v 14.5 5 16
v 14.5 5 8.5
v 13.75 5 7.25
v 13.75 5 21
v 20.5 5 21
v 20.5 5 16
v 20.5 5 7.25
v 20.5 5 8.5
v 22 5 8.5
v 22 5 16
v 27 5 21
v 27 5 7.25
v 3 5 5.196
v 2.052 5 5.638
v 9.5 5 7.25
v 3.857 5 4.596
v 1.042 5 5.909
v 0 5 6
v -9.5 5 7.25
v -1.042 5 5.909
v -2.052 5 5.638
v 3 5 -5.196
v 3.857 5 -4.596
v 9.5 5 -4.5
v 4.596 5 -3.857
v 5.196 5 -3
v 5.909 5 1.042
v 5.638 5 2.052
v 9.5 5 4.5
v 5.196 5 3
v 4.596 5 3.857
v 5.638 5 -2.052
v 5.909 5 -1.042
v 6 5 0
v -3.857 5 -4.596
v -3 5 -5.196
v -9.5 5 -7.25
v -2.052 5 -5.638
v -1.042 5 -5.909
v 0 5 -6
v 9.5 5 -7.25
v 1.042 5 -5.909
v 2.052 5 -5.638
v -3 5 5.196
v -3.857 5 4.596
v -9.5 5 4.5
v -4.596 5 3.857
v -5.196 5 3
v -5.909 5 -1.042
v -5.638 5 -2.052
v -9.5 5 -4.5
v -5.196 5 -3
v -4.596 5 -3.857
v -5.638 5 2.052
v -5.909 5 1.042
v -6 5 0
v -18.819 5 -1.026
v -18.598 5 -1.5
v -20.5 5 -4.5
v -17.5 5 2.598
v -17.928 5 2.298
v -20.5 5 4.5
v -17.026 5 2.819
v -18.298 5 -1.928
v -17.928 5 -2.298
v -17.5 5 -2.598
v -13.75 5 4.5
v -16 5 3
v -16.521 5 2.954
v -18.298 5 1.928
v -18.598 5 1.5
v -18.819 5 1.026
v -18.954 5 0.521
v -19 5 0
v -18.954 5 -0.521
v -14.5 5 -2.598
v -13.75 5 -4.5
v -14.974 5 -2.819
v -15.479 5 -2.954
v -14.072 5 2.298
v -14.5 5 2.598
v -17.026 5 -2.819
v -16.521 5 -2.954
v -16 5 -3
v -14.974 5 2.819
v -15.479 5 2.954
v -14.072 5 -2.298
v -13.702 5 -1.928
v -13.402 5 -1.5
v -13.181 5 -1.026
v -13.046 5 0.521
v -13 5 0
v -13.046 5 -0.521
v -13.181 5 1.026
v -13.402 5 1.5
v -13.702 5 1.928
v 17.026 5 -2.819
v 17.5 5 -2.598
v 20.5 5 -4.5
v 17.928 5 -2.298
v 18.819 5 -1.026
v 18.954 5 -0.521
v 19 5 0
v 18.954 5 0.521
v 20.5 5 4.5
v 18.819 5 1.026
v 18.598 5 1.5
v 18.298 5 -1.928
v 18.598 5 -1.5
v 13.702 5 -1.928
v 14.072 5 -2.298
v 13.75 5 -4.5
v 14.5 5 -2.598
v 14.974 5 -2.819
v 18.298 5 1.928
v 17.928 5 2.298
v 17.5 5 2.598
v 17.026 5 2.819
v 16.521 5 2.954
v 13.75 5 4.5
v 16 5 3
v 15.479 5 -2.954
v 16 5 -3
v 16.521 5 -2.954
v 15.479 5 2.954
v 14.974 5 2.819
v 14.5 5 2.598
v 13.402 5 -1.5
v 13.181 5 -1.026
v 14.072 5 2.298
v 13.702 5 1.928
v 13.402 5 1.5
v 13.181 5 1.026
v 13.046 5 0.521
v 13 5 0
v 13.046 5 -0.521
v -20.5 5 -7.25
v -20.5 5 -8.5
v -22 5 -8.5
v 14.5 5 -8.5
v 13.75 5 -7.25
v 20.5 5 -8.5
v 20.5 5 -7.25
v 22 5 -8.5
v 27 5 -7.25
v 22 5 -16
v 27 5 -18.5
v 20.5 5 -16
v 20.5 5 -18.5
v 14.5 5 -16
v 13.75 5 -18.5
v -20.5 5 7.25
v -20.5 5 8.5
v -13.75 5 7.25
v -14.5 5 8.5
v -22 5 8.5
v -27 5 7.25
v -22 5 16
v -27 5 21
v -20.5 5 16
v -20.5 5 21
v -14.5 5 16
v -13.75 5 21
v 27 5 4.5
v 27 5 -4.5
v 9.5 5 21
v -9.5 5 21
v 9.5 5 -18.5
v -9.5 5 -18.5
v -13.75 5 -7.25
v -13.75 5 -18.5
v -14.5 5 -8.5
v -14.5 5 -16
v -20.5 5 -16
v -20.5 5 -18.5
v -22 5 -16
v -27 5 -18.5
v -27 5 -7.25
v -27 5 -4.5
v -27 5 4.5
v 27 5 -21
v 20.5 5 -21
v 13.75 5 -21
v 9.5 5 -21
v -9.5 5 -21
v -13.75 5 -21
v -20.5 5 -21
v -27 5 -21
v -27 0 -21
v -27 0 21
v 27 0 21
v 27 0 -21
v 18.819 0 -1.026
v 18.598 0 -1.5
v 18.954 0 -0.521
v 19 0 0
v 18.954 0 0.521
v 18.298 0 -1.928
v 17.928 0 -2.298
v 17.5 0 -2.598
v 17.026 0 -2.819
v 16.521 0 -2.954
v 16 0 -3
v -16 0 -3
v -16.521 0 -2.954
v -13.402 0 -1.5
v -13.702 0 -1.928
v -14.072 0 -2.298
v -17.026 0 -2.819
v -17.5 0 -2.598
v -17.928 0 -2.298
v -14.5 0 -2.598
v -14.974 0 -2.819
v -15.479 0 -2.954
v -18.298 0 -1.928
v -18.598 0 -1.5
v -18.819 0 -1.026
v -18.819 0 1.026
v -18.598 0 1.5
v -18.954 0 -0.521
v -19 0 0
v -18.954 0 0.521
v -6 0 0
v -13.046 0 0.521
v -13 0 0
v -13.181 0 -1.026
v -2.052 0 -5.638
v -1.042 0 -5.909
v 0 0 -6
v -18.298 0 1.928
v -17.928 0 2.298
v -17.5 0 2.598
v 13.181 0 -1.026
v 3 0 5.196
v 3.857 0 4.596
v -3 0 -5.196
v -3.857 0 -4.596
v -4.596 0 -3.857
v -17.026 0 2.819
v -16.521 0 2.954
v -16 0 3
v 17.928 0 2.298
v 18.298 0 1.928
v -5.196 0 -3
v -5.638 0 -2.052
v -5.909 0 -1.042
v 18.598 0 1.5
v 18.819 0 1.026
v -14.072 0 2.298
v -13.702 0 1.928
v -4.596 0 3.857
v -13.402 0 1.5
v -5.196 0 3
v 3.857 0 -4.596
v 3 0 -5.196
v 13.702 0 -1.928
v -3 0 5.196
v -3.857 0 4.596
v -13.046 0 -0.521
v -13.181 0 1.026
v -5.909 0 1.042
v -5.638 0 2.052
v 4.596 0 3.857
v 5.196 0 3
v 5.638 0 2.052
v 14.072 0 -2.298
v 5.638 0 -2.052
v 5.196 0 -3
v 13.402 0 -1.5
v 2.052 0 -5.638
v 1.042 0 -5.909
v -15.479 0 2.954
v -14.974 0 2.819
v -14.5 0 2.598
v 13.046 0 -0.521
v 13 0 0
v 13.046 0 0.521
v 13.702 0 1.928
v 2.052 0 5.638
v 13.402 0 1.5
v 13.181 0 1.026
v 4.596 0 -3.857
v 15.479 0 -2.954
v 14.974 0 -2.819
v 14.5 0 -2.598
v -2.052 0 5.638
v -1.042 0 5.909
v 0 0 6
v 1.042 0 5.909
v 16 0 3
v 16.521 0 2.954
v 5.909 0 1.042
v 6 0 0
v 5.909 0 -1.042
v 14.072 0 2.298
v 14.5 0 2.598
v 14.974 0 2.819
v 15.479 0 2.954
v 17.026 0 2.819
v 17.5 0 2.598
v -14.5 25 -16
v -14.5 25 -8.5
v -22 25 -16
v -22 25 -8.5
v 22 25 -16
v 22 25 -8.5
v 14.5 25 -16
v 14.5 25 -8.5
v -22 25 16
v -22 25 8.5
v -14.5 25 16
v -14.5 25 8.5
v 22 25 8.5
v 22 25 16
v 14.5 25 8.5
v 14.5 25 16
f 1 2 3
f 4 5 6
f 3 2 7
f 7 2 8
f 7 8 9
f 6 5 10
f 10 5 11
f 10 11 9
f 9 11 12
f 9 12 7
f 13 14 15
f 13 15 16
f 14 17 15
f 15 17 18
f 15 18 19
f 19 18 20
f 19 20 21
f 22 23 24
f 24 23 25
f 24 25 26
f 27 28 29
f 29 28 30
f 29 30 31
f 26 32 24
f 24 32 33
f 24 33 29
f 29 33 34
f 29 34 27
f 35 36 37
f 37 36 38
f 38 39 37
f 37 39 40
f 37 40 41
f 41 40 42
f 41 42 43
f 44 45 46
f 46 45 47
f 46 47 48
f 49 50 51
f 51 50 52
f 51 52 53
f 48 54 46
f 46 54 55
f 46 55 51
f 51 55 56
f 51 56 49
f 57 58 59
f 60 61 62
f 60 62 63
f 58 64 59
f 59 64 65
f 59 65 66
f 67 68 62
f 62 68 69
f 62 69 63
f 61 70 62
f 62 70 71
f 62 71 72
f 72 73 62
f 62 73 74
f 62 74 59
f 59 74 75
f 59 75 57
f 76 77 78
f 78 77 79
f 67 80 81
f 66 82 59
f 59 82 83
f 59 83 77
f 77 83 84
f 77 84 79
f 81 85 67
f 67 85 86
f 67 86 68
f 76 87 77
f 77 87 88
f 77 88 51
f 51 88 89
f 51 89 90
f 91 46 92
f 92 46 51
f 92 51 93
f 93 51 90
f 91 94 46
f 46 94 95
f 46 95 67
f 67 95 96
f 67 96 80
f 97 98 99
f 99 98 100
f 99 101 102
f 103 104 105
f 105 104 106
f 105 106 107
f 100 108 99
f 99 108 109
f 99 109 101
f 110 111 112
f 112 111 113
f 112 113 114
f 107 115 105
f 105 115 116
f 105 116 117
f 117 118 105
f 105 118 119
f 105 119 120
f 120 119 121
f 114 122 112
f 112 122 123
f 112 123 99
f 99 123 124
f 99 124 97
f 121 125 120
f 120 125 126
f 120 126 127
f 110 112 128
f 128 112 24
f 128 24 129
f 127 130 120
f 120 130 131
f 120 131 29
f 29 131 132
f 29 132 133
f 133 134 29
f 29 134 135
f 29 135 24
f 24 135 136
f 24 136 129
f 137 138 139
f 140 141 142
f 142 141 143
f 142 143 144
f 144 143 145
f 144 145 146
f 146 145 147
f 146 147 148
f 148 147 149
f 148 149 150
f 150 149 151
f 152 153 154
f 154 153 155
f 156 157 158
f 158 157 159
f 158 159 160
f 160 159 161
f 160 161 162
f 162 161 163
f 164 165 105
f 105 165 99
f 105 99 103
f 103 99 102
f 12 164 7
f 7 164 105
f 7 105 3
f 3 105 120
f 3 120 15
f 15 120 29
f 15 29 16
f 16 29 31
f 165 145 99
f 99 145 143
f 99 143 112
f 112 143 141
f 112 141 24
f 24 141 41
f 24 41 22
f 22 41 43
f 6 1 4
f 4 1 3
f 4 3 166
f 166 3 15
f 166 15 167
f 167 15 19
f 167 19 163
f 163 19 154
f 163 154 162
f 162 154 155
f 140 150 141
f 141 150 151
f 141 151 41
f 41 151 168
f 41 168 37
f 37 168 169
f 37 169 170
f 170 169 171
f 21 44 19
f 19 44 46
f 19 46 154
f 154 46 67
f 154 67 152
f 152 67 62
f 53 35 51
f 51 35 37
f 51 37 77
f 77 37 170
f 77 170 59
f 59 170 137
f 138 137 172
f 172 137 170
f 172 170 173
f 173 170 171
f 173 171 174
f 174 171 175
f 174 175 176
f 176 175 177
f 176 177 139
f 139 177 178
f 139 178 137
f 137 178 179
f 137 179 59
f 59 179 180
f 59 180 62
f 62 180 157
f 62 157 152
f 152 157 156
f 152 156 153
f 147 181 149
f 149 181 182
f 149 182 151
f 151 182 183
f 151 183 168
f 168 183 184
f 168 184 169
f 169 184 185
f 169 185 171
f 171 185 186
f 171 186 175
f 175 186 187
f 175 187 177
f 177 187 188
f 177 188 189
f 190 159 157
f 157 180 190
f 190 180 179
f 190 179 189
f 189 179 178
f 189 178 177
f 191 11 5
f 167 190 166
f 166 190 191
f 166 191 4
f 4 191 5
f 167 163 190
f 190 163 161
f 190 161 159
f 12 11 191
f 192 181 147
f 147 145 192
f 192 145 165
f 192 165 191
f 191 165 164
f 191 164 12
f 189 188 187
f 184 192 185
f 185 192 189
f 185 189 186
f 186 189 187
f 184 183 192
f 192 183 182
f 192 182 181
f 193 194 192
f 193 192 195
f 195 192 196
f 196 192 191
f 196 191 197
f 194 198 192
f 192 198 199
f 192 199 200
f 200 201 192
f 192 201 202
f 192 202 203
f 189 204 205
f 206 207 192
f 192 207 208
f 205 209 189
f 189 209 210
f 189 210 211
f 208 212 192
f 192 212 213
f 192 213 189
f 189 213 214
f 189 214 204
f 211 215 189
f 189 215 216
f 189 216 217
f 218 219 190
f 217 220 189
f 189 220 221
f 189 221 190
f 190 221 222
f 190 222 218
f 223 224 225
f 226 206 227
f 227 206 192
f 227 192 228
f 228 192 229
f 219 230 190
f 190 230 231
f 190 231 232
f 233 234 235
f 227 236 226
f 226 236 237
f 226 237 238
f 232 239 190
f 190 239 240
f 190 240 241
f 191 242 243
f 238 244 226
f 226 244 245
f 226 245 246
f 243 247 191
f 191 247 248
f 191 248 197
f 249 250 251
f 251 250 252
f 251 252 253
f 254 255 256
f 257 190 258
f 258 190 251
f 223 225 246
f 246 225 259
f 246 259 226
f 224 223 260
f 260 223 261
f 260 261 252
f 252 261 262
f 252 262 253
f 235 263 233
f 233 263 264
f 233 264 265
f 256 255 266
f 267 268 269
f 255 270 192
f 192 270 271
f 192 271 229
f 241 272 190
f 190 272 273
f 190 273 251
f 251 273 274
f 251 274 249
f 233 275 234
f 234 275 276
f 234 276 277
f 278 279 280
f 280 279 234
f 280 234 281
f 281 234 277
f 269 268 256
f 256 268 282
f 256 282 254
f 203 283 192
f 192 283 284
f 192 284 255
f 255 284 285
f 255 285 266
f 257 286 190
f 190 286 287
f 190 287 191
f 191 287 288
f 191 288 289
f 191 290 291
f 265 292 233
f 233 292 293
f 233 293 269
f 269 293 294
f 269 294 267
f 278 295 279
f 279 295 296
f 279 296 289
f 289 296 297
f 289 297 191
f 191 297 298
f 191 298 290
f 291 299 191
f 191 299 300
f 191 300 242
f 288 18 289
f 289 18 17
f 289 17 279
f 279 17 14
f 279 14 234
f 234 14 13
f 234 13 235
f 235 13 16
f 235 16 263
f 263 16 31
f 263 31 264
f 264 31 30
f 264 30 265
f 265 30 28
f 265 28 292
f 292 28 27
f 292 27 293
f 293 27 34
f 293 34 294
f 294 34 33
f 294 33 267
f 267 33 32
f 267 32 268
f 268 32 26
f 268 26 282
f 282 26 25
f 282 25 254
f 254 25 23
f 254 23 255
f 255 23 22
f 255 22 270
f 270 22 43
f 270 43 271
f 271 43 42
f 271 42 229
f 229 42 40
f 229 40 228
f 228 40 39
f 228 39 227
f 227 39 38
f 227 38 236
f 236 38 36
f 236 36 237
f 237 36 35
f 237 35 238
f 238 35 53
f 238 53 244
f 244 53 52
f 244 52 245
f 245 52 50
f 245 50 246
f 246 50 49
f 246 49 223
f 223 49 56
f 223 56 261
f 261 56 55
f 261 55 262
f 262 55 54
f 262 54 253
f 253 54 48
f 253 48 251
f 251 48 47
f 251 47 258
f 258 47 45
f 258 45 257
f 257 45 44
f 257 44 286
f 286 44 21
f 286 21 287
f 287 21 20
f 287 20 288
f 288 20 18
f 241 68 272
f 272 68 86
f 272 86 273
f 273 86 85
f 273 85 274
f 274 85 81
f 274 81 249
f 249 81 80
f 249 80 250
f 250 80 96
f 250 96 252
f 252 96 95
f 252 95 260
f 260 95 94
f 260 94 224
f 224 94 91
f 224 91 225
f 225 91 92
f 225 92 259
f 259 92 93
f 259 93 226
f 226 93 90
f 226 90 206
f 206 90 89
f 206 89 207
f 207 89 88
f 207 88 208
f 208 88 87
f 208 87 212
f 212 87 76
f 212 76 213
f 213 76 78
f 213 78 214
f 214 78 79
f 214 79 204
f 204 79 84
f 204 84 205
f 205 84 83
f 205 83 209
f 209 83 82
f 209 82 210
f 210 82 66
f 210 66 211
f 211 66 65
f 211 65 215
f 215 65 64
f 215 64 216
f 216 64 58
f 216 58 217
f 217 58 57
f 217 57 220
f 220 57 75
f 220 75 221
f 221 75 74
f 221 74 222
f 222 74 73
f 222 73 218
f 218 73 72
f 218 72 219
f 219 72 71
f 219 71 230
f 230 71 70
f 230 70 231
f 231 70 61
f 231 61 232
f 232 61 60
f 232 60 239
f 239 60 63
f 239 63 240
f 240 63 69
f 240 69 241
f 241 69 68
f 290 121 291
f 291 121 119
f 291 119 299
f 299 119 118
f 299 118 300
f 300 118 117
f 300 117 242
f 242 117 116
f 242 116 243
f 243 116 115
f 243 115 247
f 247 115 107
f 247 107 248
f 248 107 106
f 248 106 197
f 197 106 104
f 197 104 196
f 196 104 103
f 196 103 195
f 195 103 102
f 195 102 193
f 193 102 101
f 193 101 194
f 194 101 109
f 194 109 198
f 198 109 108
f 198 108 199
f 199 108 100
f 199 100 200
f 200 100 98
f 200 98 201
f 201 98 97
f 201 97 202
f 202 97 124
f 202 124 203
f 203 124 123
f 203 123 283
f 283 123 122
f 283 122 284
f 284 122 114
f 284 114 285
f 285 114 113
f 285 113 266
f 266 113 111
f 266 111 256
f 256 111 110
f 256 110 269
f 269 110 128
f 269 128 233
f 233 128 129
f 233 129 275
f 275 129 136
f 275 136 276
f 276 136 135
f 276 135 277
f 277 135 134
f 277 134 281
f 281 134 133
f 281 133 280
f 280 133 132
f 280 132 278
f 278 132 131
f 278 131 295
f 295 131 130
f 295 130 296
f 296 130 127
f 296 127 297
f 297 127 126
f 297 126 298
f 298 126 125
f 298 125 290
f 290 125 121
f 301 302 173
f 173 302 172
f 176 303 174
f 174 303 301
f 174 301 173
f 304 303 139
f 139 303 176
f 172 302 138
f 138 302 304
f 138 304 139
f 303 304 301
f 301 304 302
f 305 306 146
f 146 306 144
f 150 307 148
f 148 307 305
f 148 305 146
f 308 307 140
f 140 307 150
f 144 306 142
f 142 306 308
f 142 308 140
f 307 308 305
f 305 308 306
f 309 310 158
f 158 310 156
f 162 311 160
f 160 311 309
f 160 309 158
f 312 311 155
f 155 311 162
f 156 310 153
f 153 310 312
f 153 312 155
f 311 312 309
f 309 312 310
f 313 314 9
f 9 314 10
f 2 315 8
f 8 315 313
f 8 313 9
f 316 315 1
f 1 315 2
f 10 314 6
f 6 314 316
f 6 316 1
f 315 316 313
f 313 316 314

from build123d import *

# Parameters (mm, degrees)
SKETCH4_W           = 54
SKETCH4_H           = 42
BOSS_EXTRUDE1_DEPTH = 5
SKETCH5_R           = 6
SKETCH5_R_2         = 3
CUT_EXTRUDE1_DEPTH  = 5
SKETCH6_W           = 7.5
SKETCH6_H           = 7.5
BOSS_EXTRUDE3_DEPTH = 20


with BuildPart() as part:
    # Sketch4 → Boss-Extrude1 (new body)
    with BuildSketch(Plane(origin=(0, 0, 0), x_dir=(1, 0, 0), z_dir=(0, 1, 0))):
        Rectangle(SKETCH4_W, SKETCH4_H)
    extrude(amount=BOSS_EXTRUDE1_DEPTH)

    # Sketch5 → Cut-Extrude1 (cut)
    with BuildSketch(Plane(origin=(0, 5, 0), x_dir=(1, 0, 0), z_dir=(0, 1, 0))):
        with Locations(Location((0, 0, 0), (0, 0, 270))):
            Circle(SKETCH5_R)
        with Locations(Location((-16, 0, 0), (0, 0, 270))):
            Circle(SKETCH5_R_2)
        with Locations(Location((16, 0, 0), (0, 0, 270))):
            Circle(SKETCH5_R_2)
    extrude(amount=-CUT_EXTRUDE1_DEPTH, mode=Mode.SUBTRACT)

    # Sketch6 → Boss-Extrude3 (add)
    with BuildSketch(Plane(origin=(0, 5, 0), x_dir=(1, 0, 0), z_dir=(0, 1, 0))):
        with Locations((-18.25, 12.25)):
            Rectangle(SKETCH6_W, SKETCH6_H)
        with Locations((18.25, 12.25)):
            Rectangle(SKETCH6_W, SKETCH6_H)
        with Locations((-18.25, -12.25)):
            Rectangle(SKETCH6_W, SKETCH6_H)
        with Locations((18.25, -12.25)):
            Rectangle(SKETCH6_W, SKETCH6_H)
    extrude(amount=BOSS_EXTRUDE3_DEPTH)


solid = part.part
